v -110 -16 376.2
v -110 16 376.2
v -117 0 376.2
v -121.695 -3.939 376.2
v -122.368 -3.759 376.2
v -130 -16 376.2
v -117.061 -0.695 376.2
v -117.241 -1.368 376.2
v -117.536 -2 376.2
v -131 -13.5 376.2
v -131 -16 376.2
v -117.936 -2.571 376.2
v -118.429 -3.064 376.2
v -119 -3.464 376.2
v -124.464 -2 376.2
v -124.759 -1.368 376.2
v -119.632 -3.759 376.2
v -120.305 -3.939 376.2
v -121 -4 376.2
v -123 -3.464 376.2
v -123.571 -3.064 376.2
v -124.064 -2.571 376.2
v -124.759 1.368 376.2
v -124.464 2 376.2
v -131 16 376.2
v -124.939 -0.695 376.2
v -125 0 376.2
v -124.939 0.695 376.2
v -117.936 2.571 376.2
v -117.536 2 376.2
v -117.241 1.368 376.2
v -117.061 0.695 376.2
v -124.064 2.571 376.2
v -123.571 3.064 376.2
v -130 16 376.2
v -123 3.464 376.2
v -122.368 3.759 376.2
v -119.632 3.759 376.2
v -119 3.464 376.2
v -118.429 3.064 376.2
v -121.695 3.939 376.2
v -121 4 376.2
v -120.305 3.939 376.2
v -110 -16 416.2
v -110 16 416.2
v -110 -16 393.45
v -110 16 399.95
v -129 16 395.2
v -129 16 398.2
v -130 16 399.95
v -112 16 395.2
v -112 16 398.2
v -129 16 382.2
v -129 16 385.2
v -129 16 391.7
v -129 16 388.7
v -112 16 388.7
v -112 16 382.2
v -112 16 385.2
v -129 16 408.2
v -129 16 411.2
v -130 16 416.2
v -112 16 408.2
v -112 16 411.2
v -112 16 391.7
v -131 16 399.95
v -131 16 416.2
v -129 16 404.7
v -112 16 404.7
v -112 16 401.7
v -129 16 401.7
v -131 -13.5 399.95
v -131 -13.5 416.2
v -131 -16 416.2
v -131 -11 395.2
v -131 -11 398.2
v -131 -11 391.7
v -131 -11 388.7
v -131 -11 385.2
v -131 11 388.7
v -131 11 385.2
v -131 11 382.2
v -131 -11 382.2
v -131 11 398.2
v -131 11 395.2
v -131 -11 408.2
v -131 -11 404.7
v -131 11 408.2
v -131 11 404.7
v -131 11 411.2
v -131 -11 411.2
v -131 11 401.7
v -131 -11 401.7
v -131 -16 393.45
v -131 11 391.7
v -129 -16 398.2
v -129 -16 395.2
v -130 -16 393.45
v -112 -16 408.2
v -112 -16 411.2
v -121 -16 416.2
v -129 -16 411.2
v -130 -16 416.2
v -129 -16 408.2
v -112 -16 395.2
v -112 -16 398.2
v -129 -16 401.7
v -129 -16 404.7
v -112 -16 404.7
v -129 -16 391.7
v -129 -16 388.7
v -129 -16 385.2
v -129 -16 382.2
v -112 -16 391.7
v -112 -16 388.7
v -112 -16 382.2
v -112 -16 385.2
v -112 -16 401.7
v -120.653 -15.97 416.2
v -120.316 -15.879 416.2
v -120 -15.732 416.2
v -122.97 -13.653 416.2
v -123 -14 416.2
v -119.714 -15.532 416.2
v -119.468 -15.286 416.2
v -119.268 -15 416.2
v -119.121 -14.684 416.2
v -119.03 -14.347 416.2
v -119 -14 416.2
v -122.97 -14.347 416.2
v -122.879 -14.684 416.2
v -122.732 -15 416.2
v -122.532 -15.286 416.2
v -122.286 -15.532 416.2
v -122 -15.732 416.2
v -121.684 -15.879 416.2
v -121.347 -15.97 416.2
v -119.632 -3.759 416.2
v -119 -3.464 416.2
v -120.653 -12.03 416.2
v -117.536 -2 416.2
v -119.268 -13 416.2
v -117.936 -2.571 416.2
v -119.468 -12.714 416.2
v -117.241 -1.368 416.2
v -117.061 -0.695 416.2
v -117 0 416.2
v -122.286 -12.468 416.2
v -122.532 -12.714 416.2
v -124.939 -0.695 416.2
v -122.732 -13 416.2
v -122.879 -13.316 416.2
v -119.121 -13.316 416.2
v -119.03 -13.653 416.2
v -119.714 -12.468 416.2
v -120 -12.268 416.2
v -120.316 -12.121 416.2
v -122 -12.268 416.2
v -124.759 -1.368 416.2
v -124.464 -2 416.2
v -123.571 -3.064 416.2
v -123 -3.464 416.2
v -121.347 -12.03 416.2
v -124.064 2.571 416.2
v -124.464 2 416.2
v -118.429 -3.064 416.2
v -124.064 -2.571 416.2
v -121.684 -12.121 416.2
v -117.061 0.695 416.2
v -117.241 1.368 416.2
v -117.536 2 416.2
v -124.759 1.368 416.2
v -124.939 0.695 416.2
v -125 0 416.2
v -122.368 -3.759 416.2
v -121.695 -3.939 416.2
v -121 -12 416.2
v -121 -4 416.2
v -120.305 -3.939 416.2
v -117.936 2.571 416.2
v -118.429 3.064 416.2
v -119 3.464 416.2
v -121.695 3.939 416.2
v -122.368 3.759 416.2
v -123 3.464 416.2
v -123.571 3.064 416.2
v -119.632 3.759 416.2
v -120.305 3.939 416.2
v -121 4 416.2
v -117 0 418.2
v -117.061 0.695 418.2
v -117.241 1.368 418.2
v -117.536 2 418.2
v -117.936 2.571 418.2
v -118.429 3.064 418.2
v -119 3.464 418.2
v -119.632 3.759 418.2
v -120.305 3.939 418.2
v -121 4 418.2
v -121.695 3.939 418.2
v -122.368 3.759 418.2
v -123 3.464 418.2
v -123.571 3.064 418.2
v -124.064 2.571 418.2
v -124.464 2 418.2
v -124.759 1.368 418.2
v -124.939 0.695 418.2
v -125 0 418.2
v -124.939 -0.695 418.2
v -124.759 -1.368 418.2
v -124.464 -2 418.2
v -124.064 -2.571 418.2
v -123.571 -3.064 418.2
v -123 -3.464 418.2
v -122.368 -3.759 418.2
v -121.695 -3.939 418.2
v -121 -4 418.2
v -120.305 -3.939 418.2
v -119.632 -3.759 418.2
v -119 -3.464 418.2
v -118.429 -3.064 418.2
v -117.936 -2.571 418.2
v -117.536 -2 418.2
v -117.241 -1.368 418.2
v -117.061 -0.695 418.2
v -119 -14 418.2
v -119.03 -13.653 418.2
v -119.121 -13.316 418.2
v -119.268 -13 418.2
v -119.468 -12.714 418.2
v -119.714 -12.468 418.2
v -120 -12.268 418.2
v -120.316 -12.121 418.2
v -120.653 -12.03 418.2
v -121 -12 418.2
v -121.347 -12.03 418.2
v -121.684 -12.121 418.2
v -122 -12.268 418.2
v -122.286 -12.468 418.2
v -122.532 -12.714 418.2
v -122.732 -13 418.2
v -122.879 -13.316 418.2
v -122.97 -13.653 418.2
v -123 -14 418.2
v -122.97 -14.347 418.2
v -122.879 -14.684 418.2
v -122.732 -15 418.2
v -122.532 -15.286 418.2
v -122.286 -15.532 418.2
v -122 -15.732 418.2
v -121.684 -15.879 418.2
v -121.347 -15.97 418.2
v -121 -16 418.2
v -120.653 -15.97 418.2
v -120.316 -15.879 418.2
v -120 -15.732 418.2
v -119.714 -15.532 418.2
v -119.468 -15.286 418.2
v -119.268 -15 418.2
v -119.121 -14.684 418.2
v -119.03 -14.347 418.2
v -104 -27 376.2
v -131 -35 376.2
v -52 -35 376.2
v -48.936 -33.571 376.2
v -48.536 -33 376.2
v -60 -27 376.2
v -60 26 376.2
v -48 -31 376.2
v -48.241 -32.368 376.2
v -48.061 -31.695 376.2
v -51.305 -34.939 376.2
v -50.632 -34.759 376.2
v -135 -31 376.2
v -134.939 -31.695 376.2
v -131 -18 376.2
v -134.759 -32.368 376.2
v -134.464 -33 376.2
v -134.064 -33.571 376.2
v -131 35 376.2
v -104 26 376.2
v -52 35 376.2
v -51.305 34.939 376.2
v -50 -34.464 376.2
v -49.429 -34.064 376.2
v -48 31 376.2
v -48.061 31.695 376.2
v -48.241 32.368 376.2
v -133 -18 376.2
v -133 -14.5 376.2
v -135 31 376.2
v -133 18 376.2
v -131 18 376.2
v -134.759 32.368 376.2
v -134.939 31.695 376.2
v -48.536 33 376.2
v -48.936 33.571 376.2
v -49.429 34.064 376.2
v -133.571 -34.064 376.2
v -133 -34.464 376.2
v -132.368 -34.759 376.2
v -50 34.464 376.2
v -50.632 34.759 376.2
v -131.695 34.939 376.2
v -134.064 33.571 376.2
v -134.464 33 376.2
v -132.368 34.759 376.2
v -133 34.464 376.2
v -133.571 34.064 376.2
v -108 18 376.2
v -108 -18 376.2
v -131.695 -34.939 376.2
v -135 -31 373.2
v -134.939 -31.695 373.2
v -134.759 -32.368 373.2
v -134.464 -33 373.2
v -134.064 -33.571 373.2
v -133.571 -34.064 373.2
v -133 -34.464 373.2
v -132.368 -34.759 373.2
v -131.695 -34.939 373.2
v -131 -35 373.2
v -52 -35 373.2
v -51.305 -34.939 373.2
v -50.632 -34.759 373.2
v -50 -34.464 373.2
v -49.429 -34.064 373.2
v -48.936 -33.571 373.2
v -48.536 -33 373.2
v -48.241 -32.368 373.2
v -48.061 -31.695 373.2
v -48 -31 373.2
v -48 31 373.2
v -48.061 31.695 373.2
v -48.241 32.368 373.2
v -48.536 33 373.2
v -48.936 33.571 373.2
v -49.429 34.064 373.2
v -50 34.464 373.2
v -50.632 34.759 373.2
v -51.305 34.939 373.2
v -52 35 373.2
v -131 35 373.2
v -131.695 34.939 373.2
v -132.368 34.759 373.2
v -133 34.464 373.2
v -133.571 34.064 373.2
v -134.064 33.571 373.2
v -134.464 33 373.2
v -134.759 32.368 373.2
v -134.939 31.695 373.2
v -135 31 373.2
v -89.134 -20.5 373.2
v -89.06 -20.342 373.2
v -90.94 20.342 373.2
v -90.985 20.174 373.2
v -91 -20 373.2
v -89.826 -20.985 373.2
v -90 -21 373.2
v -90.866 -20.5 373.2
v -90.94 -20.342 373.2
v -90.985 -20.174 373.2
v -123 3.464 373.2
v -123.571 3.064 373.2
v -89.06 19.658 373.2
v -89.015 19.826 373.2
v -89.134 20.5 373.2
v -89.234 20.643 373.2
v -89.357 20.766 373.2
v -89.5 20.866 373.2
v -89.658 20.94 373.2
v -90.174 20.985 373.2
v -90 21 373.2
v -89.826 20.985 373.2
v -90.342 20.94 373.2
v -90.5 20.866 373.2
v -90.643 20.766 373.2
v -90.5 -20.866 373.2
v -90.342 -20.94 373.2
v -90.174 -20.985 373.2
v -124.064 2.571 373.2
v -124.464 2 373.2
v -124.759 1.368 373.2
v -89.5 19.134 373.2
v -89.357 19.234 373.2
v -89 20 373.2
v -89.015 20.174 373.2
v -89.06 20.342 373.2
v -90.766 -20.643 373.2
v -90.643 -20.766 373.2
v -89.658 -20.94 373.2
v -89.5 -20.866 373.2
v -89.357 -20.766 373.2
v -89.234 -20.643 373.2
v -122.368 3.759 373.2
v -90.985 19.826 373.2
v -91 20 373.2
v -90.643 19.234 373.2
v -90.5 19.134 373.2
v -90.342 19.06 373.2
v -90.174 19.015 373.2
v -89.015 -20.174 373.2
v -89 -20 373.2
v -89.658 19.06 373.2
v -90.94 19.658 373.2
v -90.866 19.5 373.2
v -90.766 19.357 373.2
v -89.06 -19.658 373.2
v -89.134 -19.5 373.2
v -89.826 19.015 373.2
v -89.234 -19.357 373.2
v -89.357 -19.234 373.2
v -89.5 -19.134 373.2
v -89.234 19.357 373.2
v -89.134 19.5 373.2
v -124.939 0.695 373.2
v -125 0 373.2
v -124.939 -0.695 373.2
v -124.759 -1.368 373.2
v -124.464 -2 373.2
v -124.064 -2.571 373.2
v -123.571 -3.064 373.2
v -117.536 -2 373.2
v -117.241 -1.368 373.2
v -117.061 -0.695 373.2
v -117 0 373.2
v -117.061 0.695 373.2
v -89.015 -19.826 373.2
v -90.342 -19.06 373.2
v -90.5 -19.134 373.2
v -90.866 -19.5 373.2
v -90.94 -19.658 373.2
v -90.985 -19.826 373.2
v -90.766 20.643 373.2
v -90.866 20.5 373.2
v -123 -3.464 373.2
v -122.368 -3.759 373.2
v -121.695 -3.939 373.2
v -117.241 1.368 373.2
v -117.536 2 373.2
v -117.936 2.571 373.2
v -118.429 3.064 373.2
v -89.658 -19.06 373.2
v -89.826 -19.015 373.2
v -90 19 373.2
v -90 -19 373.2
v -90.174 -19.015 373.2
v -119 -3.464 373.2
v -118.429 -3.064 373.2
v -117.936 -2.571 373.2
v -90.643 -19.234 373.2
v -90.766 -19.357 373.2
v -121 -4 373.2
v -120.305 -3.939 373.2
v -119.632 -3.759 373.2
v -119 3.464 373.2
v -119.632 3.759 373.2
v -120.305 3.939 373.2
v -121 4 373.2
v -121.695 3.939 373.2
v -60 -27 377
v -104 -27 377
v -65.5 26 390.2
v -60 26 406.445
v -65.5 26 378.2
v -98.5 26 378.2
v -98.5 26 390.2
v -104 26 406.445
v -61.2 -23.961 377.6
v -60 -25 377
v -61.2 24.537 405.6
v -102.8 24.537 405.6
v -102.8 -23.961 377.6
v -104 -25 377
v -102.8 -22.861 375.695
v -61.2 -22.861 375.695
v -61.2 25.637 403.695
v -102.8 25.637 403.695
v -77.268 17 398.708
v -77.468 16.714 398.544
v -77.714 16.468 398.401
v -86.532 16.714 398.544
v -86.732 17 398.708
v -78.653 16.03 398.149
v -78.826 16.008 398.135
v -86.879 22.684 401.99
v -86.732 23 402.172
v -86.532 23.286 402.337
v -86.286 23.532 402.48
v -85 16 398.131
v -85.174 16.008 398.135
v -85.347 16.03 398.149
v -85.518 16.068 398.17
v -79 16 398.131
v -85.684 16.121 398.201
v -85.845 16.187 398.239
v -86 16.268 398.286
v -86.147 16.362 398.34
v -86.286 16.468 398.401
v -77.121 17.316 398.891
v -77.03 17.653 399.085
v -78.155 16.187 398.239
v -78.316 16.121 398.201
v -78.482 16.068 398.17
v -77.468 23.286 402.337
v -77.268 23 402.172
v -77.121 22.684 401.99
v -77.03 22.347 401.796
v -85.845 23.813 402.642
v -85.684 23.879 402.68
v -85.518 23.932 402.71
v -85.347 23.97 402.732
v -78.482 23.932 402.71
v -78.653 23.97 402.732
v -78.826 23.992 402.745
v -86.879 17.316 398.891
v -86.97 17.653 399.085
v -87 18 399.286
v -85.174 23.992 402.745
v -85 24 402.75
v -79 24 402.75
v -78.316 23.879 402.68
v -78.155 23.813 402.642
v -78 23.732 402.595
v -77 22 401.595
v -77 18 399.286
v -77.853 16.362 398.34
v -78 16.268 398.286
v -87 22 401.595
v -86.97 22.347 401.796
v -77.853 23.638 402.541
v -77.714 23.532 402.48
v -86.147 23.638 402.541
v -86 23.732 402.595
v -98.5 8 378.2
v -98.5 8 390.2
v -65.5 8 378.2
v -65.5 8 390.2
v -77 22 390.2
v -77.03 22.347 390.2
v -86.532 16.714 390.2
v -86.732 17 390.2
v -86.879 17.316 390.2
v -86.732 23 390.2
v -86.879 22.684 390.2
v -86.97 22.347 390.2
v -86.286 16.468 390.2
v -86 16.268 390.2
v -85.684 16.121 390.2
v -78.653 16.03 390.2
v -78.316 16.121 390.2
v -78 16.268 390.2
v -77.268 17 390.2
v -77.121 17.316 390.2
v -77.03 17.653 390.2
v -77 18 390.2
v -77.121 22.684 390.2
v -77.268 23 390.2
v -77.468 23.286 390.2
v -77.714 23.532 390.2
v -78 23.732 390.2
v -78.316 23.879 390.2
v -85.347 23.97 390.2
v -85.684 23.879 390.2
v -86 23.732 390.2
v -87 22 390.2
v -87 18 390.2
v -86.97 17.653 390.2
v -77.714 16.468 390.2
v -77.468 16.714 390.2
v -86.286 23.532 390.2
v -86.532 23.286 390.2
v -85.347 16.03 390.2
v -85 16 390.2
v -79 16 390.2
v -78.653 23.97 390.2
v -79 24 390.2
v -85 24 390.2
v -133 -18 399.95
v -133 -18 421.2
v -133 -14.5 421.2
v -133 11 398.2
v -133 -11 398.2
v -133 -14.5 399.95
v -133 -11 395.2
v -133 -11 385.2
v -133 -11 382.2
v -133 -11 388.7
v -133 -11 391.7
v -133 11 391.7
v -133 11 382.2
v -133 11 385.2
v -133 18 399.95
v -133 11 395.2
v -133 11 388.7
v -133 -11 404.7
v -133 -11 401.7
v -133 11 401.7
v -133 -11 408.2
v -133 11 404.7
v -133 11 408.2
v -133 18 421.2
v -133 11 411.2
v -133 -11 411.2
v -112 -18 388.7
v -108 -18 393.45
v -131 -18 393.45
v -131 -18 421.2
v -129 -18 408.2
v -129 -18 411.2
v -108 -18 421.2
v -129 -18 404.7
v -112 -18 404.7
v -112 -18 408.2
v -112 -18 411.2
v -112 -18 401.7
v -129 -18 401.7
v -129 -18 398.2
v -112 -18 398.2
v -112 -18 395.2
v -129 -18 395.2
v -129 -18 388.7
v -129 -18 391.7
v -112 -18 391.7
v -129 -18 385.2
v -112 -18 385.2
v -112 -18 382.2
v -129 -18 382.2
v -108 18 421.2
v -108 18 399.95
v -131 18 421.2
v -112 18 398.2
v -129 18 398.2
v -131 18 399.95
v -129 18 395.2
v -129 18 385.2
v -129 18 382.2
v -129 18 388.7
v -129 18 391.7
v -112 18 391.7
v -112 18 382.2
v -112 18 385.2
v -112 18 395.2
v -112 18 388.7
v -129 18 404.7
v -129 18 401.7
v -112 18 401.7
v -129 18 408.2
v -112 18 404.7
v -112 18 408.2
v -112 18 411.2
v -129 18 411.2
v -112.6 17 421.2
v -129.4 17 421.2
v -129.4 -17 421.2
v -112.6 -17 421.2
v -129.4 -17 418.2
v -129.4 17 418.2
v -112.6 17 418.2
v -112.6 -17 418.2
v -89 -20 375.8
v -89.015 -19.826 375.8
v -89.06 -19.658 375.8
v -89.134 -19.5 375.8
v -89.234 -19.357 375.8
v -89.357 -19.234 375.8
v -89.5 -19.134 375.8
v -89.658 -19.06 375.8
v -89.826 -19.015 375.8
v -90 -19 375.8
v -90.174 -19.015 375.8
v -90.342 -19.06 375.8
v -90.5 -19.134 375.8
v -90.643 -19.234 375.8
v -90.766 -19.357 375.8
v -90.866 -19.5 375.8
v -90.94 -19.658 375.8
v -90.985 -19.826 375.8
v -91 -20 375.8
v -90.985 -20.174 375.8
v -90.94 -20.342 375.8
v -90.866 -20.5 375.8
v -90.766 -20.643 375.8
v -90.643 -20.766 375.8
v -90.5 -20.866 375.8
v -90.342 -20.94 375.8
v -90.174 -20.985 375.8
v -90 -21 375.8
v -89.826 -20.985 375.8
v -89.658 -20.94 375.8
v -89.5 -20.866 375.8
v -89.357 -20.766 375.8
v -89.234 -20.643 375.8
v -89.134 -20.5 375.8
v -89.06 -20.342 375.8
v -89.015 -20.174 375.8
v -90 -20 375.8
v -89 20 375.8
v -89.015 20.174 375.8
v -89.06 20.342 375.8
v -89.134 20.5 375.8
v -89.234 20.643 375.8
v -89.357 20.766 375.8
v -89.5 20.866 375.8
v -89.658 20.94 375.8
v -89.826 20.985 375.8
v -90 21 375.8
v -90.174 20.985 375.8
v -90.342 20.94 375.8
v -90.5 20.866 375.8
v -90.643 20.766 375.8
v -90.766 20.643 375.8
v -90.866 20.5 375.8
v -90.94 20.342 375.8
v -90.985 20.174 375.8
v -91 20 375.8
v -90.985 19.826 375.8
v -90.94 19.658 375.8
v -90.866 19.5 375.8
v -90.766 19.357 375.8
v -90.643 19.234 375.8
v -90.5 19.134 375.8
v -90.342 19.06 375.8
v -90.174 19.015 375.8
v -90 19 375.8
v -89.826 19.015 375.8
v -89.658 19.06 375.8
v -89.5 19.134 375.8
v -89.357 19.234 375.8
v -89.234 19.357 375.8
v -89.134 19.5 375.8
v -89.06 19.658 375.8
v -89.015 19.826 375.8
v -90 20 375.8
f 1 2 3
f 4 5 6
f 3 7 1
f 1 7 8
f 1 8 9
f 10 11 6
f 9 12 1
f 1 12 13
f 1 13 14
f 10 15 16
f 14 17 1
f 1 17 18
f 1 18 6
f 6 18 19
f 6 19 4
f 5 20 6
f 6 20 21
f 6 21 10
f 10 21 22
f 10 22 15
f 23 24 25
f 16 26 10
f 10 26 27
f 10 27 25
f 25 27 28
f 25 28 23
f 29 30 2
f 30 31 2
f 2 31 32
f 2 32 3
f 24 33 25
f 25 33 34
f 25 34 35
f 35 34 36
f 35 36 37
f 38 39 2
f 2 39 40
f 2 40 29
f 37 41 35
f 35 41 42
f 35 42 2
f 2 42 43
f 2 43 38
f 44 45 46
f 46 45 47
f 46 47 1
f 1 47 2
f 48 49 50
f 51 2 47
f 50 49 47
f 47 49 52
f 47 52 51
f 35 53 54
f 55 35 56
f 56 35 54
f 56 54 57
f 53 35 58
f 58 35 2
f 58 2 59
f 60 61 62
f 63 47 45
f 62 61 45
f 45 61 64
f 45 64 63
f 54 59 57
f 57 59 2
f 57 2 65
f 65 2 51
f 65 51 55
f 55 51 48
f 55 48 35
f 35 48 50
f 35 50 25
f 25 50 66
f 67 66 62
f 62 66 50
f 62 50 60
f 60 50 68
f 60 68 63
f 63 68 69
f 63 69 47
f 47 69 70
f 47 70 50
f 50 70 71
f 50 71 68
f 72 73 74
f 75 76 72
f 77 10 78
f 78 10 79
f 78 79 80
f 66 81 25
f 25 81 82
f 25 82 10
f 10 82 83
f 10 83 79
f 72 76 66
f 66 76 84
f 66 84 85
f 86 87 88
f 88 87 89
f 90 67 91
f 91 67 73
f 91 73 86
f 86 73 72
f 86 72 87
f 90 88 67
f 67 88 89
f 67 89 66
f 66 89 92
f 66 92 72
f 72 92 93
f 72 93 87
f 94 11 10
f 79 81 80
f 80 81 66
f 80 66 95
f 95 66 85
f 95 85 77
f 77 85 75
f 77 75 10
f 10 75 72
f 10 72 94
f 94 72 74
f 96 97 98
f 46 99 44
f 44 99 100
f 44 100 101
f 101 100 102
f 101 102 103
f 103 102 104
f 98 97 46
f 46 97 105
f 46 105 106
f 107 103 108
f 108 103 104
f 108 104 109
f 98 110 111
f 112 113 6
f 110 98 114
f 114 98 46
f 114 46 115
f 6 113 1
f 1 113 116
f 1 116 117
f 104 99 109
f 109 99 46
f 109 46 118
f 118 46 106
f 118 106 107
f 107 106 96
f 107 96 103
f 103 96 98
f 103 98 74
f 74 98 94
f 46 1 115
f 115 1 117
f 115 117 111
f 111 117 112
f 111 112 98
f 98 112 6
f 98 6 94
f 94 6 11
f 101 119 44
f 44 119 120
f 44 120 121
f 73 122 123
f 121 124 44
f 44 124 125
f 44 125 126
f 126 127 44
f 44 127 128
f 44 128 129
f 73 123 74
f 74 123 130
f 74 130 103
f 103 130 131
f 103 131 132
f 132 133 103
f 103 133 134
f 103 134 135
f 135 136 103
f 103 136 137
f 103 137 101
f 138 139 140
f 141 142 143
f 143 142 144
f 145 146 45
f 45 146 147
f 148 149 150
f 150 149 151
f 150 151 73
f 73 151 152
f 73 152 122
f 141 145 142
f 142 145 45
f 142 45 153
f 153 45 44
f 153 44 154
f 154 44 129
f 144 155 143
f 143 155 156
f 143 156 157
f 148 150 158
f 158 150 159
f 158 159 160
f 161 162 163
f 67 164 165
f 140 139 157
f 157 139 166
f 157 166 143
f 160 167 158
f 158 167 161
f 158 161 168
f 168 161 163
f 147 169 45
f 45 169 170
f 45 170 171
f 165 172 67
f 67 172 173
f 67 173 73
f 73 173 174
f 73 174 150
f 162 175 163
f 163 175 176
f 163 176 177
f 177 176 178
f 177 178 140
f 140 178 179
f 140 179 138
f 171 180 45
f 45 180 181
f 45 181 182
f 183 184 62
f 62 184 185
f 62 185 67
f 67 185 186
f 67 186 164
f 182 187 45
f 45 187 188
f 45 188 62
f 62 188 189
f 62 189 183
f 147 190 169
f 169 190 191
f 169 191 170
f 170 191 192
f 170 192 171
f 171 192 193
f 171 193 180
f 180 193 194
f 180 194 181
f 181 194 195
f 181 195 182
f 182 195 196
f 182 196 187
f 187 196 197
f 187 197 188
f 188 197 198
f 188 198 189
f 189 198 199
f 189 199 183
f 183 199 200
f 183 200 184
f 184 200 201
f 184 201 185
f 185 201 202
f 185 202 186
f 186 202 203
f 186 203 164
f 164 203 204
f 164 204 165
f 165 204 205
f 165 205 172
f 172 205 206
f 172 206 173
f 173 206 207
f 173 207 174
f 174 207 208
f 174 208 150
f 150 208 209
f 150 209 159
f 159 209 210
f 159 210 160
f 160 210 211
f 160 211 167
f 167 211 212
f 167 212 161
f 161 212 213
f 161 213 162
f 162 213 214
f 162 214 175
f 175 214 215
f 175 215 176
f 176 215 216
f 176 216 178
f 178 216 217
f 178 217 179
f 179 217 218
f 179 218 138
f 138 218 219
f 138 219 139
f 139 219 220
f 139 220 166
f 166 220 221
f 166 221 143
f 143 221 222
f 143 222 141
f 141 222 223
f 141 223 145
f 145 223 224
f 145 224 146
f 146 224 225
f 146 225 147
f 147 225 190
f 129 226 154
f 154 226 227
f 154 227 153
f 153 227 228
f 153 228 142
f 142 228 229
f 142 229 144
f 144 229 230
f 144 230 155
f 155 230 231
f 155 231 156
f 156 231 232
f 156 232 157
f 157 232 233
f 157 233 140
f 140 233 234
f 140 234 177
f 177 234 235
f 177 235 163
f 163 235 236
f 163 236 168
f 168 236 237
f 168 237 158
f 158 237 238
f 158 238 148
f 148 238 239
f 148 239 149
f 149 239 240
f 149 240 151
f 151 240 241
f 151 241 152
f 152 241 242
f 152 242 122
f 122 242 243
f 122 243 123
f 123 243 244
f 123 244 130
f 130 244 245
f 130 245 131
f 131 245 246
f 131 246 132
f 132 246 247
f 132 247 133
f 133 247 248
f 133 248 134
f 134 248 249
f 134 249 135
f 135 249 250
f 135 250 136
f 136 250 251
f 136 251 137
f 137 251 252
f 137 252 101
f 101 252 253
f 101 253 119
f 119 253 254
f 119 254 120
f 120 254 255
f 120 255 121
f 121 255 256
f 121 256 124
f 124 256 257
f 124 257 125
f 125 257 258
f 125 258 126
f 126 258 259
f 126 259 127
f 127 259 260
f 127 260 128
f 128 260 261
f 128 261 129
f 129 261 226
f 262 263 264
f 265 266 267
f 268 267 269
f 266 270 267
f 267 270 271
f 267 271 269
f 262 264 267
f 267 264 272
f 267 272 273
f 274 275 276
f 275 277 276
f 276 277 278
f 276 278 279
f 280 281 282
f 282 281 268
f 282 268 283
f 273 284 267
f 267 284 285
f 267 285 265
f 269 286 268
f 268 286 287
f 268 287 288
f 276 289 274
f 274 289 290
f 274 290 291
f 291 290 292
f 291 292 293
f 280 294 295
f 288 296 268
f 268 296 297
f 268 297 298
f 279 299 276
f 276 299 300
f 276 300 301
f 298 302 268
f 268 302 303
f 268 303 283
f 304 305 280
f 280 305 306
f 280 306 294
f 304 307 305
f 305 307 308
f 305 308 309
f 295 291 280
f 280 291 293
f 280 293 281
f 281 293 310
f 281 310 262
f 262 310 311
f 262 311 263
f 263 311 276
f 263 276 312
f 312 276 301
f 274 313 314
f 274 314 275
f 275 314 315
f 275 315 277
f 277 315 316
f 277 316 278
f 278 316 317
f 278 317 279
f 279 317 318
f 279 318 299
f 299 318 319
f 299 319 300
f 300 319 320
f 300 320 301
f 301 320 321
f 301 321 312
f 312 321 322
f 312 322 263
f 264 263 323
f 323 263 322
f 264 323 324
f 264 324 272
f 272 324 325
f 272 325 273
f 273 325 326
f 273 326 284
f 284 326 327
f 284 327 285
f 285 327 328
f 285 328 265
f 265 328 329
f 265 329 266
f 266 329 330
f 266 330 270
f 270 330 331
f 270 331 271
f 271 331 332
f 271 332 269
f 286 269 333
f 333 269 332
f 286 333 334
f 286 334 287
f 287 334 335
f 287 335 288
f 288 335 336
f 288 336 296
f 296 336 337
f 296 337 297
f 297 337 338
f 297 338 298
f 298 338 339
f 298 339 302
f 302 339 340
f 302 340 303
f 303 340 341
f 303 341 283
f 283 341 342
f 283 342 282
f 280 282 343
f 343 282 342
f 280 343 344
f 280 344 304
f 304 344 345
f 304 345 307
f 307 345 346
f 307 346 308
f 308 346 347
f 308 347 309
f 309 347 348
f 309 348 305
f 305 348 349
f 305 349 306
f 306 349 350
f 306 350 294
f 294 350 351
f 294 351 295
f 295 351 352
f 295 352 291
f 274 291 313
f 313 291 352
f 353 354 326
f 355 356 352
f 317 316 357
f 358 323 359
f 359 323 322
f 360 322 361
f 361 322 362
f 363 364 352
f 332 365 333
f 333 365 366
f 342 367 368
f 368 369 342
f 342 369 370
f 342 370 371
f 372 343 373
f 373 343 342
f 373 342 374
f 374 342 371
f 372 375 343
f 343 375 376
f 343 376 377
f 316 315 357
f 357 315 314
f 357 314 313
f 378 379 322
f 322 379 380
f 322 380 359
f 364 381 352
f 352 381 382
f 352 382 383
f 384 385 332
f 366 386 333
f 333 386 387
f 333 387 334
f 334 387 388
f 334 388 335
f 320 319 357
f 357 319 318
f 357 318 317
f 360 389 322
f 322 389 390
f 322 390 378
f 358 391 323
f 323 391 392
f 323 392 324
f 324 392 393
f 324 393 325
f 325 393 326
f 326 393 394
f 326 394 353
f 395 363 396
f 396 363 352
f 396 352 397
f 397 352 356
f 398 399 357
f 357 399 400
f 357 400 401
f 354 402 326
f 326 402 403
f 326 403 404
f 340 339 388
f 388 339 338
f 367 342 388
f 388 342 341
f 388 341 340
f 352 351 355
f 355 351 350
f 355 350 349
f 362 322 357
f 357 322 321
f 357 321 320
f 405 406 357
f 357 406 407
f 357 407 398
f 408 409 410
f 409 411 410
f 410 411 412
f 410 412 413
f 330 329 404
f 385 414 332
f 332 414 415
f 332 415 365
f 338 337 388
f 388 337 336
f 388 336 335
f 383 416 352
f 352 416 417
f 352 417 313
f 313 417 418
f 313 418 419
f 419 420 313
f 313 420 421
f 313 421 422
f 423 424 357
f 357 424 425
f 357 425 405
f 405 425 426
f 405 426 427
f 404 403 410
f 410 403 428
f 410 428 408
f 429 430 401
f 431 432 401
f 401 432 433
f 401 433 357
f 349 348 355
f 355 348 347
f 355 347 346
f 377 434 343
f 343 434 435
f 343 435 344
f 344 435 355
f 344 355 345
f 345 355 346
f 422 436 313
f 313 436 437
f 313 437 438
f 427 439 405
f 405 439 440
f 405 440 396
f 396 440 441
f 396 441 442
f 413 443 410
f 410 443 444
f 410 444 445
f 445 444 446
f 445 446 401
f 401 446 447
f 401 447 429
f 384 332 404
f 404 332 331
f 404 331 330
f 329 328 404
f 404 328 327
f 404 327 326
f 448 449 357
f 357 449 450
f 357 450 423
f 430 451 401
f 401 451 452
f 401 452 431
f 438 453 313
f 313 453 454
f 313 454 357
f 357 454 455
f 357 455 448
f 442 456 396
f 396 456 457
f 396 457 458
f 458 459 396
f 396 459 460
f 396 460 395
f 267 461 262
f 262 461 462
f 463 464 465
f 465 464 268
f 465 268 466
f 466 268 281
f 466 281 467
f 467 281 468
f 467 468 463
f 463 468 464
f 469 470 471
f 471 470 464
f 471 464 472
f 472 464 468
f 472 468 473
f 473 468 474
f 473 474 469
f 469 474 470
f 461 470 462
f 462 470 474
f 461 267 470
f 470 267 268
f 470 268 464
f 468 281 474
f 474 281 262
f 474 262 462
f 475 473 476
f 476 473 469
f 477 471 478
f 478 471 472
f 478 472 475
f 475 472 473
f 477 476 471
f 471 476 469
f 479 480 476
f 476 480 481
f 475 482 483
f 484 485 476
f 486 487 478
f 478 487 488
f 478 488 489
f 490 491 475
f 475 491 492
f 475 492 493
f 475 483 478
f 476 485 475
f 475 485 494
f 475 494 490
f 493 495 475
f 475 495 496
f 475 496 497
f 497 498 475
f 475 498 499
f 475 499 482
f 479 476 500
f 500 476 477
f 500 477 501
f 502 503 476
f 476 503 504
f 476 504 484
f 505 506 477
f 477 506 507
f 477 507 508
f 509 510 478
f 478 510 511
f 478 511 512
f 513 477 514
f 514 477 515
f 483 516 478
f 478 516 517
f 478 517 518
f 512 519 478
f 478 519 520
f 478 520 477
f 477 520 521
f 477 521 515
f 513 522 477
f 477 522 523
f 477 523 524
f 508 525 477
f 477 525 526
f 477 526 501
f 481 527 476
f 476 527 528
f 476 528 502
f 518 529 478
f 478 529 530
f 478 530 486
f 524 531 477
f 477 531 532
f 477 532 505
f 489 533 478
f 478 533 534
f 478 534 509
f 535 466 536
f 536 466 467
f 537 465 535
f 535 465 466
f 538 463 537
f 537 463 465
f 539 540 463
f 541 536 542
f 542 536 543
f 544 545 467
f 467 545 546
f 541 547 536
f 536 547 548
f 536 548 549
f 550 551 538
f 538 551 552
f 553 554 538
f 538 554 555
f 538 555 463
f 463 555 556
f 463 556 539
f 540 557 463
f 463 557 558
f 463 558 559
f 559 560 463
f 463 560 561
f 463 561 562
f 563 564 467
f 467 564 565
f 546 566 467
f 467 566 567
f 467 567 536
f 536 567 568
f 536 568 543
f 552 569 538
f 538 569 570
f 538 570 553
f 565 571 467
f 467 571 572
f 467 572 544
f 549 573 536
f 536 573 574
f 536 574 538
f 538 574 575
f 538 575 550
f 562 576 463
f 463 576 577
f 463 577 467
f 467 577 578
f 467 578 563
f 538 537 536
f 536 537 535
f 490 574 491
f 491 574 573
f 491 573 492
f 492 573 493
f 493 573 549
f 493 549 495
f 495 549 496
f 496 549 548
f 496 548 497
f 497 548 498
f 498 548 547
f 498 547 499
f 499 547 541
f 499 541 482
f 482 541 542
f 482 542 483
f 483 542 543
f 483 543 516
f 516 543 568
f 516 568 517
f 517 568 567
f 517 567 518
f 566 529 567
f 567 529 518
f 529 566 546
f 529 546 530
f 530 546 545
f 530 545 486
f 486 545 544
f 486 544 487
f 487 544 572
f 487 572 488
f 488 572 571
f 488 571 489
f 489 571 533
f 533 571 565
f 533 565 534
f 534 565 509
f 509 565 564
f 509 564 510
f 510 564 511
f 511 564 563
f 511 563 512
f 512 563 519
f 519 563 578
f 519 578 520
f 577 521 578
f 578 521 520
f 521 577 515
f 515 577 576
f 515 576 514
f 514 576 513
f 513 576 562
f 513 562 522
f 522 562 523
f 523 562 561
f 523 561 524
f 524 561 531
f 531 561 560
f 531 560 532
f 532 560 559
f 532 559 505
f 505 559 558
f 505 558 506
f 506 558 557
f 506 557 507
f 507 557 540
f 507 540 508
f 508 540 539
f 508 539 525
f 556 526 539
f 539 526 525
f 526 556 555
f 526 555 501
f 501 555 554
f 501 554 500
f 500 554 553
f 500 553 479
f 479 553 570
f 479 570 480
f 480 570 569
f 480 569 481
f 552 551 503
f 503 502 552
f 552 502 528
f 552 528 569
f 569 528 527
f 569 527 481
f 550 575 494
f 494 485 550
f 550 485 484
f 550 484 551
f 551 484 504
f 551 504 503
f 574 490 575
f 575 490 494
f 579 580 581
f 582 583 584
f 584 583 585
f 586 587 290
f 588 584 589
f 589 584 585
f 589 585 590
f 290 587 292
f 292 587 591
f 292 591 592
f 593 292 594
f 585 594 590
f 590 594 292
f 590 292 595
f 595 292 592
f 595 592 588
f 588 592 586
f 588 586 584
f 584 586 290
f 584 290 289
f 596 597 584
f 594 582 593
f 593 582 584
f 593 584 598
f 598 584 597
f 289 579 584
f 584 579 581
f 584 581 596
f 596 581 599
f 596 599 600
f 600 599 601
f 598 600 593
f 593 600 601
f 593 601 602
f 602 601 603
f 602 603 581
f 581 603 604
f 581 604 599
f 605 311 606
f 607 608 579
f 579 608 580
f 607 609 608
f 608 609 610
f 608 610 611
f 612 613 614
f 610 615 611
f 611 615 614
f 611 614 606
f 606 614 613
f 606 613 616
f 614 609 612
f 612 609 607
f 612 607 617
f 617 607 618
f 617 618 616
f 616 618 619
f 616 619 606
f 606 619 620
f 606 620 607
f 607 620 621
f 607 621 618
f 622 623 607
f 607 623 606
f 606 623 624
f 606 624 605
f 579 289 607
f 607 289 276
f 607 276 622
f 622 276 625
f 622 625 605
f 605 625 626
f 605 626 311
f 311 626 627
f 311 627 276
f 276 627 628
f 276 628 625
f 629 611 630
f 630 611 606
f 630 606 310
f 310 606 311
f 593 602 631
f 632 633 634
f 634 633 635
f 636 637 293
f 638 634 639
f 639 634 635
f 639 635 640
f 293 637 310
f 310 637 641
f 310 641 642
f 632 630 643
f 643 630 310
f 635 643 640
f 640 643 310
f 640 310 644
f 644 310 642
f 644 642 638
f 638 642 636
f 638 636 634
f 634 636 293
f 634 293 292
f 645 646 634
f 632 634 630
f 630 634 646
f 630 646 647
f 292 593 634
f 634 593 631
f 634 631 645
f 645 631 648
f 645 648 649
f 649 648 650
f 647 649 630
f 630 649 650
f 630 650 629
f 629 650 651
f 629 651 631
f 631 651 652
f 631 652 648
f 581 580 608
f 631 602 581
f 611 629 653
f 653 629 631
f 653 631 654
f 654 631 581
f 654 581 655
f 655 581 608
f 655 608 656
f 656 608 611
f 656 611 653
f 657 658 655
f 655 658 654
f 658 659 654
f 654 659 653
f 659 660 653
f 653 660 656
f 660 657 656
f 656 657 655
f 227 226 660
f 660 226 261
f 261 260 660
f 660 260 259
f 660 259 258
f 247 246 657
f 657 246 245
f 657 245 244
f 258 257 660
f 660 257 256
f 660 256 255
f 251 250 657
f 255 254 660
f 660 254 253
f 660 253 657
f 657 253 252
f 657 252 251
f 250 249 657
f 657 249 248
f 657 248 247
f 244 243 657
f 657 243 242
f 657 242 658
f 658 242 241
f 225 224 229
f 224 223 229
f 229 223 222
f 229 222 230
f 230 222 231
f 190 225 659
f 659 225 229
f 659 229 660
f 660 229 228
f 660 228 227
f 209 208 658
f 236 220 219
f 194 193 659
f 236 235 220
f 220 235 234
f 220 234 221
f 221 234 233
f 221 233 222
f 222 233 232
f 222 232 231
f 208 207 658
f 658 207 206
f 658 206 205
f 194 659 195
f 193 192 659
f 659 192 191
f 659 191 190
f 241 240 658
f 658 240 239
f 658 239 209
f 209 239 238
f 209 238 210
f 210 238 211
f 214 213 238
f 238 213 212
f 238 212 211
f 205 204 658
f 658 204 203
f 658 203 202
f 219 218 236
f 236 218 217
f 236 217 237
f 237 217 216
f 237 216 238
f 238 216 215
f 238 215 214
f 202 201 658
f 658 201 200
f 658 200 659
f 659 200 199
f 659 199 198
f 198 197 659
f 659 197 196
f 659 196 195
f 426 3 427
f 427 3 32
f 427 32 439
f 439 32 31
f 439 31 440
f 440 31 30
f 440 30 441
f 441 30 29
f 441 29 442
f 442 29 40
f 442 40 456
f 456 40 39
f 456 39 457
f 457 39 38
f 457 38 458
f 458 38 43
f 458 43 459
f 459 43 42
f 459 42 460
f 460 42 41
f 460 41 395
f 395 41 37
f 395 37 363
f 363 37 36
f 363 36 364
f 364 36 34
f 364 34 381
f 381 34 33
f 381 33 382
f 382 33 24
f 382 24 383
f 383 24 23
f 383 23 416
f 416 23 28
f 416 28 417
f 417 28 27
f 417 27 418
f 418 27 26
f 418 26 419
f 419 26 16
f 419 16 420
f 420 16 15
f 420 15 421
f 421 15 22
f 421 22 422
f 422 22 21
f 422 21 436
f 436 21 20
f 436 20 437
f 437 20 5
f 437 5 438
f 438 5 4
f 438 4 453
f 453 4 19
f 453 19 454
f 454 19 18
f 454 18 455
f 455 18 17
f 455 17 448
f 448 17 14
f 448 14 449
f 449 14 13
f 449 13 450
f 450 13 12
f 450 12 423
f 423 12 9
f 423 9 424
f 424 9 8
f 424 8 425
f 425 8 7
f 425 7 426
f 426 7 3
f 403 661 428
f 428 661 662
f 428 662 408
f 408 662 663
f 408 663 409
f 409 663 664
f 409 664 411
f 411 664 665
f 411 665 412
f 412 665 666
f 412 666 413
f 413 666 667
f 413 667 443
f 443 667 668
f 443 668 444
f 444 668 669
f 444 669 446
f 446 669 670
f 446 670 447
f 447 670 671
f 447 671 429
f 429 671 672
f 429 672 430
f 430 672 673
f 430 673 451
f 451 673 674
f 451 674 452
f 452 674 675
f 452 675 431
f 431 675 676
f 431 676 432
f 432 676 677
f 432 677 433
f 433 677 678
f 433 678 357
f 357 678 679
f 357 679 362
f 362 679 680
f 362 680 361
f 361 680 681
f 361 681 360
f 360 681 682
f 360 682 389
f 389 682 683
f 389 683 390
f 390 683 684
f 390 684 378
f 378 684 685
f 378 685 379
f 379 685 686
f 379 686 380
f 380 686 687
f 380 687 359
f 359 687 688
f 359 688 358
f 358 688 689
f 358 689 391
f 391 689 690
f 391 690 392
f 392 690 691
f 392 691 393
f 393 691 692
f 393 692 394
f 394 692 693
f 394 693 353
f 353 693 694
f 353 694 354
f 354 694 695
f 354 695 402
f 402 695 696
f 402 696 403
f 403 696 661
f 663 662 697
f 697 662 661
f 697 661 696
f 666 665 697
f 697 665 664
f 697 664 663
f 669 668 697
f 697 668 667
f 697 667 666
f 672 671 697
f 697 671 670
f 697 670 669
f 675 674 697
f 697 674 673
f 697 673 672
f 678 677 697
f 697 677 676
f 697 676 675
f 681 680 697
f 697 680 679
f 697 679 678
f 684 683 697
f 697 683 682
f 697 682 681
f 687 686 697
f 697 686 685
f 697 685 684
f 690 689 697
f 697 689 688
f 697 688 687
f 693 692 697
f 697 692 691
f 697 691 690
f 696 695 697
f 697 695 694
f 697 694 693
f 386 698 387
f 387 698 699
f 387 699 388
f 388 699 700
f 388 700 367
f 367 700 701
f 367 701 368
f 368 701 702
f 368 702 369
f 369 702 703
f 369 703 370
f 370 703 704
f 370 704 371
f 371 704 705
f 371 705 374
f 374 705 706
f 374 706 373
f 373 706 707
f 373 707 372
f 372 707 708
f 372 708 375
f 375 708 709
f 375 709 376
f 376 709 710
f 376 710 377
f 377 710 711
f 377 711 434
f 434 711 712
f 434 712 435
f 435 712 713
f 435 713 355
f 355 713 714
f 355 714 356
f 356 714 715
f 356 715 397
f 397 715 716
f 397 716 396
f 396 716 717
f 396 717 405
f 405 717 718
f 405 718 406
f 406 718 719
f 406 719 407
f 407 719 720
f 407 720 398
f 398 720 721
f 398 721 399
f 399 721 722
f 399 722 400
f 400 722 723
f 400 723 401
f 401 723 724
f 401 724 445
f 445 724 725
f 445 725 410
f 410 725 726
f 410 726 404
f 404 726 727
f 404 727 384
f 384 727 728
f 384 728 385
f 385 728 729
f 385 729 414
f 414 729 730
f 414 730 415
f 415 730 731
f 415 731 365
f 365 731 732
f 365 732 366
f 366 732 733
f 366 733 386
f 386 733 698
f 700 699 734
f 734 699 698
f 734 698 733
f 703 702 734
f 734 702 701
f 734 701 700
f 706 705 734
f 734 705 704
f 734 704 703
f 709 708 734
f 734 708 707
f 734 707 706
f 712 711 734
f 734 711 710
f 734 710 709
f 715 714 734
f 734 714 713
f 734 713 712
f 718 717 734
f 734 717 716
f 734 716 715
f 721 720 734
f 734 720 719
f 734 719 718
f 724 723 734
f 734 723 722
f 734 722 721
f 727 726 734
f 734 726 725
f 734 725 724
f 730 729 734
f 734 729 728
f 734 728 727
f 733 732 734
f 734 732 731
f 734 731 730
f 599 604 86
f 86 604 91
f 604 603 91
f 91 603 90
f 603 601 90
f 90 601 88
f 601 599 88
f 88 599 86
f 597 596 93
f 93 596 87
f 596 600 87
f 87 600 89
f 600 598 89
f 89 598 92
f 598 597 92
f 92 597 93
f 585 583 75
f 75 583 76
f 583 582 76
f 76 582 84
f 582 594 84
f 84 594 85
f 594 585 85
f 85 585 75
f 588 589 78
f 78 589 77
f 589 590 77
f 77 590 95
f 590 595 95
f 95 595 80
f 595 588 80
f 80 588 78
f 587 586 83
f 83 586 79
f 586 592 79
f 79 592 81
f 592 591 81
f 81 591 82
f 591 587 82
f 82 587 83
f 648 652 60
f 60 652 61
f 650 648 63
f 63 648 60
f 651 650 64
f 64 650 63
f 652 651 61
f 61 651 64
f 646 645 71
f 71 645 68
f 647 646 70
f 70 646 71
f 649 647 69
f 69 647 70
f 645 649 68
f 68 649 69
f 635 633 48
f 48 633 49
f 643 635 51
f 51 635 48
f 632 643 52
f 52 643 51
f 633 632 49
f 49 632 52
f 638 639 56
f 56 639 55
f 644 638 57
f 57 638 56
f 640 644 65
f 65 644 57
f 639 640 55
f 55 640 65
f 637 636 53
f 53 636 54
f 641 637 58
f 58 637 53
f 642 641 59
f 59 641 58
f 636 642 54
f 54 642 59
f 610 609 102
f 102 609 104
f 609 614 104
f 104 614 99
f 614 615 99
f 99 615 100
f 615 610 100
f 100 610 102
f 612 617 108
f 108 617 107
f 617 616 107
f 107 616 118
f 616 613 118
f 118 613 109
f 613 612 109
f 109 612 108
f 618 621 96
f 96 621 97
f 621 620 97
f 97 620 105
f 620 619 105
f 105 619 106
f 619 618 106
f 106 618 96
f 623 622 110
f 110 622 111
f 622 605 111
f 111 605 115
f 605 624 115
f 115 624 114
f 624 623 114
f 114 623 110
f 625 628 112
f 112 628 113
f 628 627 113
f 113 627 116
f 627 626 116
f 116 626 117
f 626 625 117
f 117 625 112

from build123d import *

# Parameters (mm, degrees)
BASE_PLATE_DEPTH                = 3
RAIN_PLATE_WEDGE_DEPTH          = 44
RAIN_PLATE_POCKET_DEPTH         = 20.8
SKETCH4_W                       = 33
SKETCH4_H                       = 12
LM393_BOARD_POCKET_DEPTH        = 9.5
RAIN_PLATE_PIN_HOLE_DEPTH       = 15
SKETCH6_W                       = 25
SKETCH6_H                       = 36
SKETCH6_W_2                     = 21
SKETCH6_H_2                     = 32
DHT11_SCREEN_WALLS_DEPTH        = 40
SKETCH7_W                       = 25
SKETCH7_H                       = 36
DHT11_SCREEN_ROOF_DEPTH         = 5
SKETCH8_W                       = 16.8
SKETCH8_H                       = 34
LDR_MODULE_POCKET_DEPTH         = 1.75
SKETCH9_R                       = 2
SKETCH9_R_2                     = 4
LDR_AND_SCREEN_WIRE_HOLES_DEPTH = 1.5
SKETCH10_R                      = 4
DHT11_WIRE_HOLE_DEPTH           = 2
SKETCH11_R                      = 1
FILAMENT_PIN_HOLES_DEPTH        = 1.55
SKETCH12_W                      = 3
SKETCH12_H                      = 22
LOUVRES_BACK_DEPTH              = 2
SKETCH13_W                      = 17
SKETCH13_H                      = 3
LOUVRES_STBD_DEPTH              = 2
SKETCH14_W                      = 17
SKETCH14_H                      = 3
LOUVRES_PORT_DEPTH              = 2


with BuildPart() as part:
    # Sketch1 → Base_plate (new body)
    with BuildSketch(Plane.XY.offset(373.2)):
        with BuildLine():
            Line((-131, -35), (-52, -35))
            ThreePointArc((-52, -35), (-49.171572875, -33.828427125), (-48, -31))
            Line((-48, -31), (-48, 31))
            ThreePointArc((-48, 31), (-49.171572875, 33.828427125), (-52, 35))
            Line((-52, 35), (-131, 35))
            ThreePointArc((-131, 35), (-133.828427125, 33.828427125), (-135, 31))
            Line((-135, 31), (-135, -31))
            ThreePointArc((-135, -31), (-133.828427125, -33.828427125), (-131, -35))
        make_face()
    extrude(amount=BASE_PLATE_DEPTH)

    # Sketch2 → Rain_plate_wedge (add)
    with BuildSketch(Plane(origin=(-104, 0, 0), x_dir=(0, 0, -1), z_dir=(1, 0, 0))):
        Polygon((-376.19, -27), (-376.19, 26), (-406.444863729, 26), (-377, -25), (-377, -27), align=None)
    extrude(amount=RAIN_PLATE_WEDGE_DEPTH)

    # Sketch3 → Rain_plate_pocket (cut, symmetric)
    with BuildSketch(Plane(origin=(-82, 0, 0), x_dir=(0, 0, -1), z_dir=(1, 0, 0))):
        Polygon((-377.859807621, -24.110769515), (-405.859807621, 24.386653096), (-403.694744112, 25.636653096), (-375.694744112, -22.860769515), align=None)
    extrude(amount=RAIN_PLATE_POCKET_DEPTH, both=True, mode=Mode.SUBTRACT)

    # Sketch4 → LM393_board_pocket (cut, symmetric)
    with BuildSketch(Plane(origin=(0, 17.5, 0), x_dir=(1, 0, 0), z_dir=(0, 1, 0))):
        with Locations((-82, -384.2)):
            Rectangle(SKETCH4_W, SKETCH4_H)
    extrude(amount=LM393_BOARD_POCKET_DEPTH, both=True, mode=Mode.SUBTRACT)

    # Sketch5 → Rain_plate_pin_hole (cut, symmetric)
    with BuildSketch(Plane.XY.offset(404.7)):
        with BuildLine():
            Line((-85, 16), (-79, 16))
            ThreePointArc((-79, 16), (-77.585786438, 16.585786438), (-77, 18))
            Line((-77, 18), (-77, 22))
            ThreePointArc((-77, 22), (-77.585786438, 23.414213562), (-79, 24))
            Line((-79, 24), (-85, 24))
            ThreePointArc((-85, 24), (-86.414213562, 23.414213562), (-87, 22))
            Line((-87, 22), (-87, 18))
            ThreePointArc((-87, 18), (-86.414213562, 16.585786438), (-85, 16))
        make_face()
    extrude(amount=RAIN_PLATE_PIN_HOLE_DEPTH, both=True, mode=Mode.SUBTRACT)

    # Sketch6 → DHT11_screen_walls (add)
    with BuildSketch(Plane.XY.offset(376.2)):
        with Locations((-120.5, 0)):
            Rectangle(SKETCH6_W, SKETCH6_H)
        with Locations((-120.5, 0)):
            Rectangle(SKETCH6_W_2, SKETCH6_H_2, mode=Mode.SUBTRACT)
    extrude(amount=DHT11_SCREEN_WALLS_DEPTH)

    # Sketch7 → DHT11_screen_roof (add)
    with BuildSketch(Plane.XY.offset(416.2)):
        with Locations((-120.5, 0)):
            Rectangle(SKETCH7_W, SKETCH7_H)
    extrude(amount=DHT11_SCREEN_ROOF_DEPTH)

    # Sketch8 → LDR_module_pocket (cut, symmetric)
    with BuildSketch(Plane.XY.offset(419.95)):
        with Locations((-121, 0)):
            Rectangle(SKETCH8_W, SKETCH8_H)
    extrude(amount=LDR_MODULE_POCKET_DEPTH, both=True, mode=Mode.SUBTRACT)

    # Sketch9 → LDR_and_screen_wire_holes (cut, symmetric)
    with BuildSketch(Plane.XY.offset(417.2)):
        with Locations((-121, -14)):
            Circle(SKETCH9_R)
        with Locations((-121, 0)):
            Circle(SKETCH9_R_2)
    extrude(amount=LDR_AND_SCREEN_WIRE_HOLES_DEPTH, both=True, mode=Mode.SUBTRACT)

    # Sketch10 → DHT11_wire_hole (cut, symmetric)
    with BuildSketch(Plane.XY.offset(374.7)):
        with Locations((-121, 0)):
            Circle(SKETCH10_R)
    extrude(amount=DHT11_WIRE_HOLE_DEPTH, both=True, mode=Mode.SUBTRACT)

    # Sketch11 → Filament_pin_holes (cut, symmetric)
    with BuildSketch(Plane.XY.offset(374.25)):
        with Locations((-90, 20)):
            Circle(SKETCH11_R)
        with Locations((-90, -20)):
            Circle(SKETCH11_R)
    extrude(amount=FILAMENT_PIN_HOLES_DEPTH, both=True, mode=Mode.SUBTRACT)

    # Sketch12 → Louvres_back (cut, symmetric)
    with BuildSketch(Plane(origin=(-132, 0, 0), x_dir=(0, 0, -1), z_dir=(1, 0, 0))):
        with Locations((-383.7, 0)):
            Rectangle(SKETCH12_W, SKETCH12_H)
        with Locations((-390.2, 0)):
            Rectangle(SKETCH12_W, SKETCH12_H)
        with Locations((-396.7, 0)):
            Rectangle(SKETCH12_W, SKETCH12_H)
        with Locations((-403.2, 0)):
            Rectangle(SKETCH12_W, SKETCH12_H)
        with Locations((-409.7, 0)):
            Rectangle(SKETCH12_W, SKETCH12_H)
    extrude(amount=LOUVRES_BACK_DEPTH, both=True, mode=Mode.SUBTRACT)

    # Sketch13 → Louvres_stbd (cut, symmetric)
    with BuildSketch(Plane(origin=(0, 17, 0), x_dir=(1, 0, 0), z_dir=(0, 1, 0))):
        with Locations((-120.5, -383.7)):
            Rectangle(SKETCH13_W, SKETCH13_H)
        with Locations((-120.5, -390.2)):
            Rectangle(SKETCH13_W, SKETCH13_H)
        with Locations((-120.5, -396.7)):
            Rectangle(SKETCH13_W, SKETCH13_H)
        with Locations((-120.5, -403.2)):
            Rectangle(SKETCH13_W, SKETCH13_H)
        with Locations((-120.5, -409.7)):
            Rectangle(SKETCH13_W, SKETCH13_H)
    extrude(amount=LOUVRES_STBD_DEPTH, both=True, mode=Mode.SUBTRACT)

    # Sketch14 → Louvres_port (cut, symmetric)
    with BuildSketch(Plane(origin=(0, -17, 0), x_dir=(1, 0, 0), z_dir=(0, 1, 0))):
        with Locations((-120.5, -383.7)):
            Rectangle(SKETCH14_W, SKETCH14_H)
        with Locations((-120.5, -390.2)):
            Rectangle(SKETCH14_W, SKETCH14_H)
        with Locations((-120.5, -396.7)):
            Rectangle(SKETCH14_W, SKETCH14_H)
        with Locations((-120.5, -403.2)):
            Rectangle(SKETCH14_W, SKETCH14_H)
        with Locations((-120.5, -409.7)):
            Rectangle(SKETCH14_W, SKETCH14_H)
    extrude(amount=LOUVRES_PORT_DEPTH, both=True, mode=Mode.SUBTRACT)


solid = part.part
